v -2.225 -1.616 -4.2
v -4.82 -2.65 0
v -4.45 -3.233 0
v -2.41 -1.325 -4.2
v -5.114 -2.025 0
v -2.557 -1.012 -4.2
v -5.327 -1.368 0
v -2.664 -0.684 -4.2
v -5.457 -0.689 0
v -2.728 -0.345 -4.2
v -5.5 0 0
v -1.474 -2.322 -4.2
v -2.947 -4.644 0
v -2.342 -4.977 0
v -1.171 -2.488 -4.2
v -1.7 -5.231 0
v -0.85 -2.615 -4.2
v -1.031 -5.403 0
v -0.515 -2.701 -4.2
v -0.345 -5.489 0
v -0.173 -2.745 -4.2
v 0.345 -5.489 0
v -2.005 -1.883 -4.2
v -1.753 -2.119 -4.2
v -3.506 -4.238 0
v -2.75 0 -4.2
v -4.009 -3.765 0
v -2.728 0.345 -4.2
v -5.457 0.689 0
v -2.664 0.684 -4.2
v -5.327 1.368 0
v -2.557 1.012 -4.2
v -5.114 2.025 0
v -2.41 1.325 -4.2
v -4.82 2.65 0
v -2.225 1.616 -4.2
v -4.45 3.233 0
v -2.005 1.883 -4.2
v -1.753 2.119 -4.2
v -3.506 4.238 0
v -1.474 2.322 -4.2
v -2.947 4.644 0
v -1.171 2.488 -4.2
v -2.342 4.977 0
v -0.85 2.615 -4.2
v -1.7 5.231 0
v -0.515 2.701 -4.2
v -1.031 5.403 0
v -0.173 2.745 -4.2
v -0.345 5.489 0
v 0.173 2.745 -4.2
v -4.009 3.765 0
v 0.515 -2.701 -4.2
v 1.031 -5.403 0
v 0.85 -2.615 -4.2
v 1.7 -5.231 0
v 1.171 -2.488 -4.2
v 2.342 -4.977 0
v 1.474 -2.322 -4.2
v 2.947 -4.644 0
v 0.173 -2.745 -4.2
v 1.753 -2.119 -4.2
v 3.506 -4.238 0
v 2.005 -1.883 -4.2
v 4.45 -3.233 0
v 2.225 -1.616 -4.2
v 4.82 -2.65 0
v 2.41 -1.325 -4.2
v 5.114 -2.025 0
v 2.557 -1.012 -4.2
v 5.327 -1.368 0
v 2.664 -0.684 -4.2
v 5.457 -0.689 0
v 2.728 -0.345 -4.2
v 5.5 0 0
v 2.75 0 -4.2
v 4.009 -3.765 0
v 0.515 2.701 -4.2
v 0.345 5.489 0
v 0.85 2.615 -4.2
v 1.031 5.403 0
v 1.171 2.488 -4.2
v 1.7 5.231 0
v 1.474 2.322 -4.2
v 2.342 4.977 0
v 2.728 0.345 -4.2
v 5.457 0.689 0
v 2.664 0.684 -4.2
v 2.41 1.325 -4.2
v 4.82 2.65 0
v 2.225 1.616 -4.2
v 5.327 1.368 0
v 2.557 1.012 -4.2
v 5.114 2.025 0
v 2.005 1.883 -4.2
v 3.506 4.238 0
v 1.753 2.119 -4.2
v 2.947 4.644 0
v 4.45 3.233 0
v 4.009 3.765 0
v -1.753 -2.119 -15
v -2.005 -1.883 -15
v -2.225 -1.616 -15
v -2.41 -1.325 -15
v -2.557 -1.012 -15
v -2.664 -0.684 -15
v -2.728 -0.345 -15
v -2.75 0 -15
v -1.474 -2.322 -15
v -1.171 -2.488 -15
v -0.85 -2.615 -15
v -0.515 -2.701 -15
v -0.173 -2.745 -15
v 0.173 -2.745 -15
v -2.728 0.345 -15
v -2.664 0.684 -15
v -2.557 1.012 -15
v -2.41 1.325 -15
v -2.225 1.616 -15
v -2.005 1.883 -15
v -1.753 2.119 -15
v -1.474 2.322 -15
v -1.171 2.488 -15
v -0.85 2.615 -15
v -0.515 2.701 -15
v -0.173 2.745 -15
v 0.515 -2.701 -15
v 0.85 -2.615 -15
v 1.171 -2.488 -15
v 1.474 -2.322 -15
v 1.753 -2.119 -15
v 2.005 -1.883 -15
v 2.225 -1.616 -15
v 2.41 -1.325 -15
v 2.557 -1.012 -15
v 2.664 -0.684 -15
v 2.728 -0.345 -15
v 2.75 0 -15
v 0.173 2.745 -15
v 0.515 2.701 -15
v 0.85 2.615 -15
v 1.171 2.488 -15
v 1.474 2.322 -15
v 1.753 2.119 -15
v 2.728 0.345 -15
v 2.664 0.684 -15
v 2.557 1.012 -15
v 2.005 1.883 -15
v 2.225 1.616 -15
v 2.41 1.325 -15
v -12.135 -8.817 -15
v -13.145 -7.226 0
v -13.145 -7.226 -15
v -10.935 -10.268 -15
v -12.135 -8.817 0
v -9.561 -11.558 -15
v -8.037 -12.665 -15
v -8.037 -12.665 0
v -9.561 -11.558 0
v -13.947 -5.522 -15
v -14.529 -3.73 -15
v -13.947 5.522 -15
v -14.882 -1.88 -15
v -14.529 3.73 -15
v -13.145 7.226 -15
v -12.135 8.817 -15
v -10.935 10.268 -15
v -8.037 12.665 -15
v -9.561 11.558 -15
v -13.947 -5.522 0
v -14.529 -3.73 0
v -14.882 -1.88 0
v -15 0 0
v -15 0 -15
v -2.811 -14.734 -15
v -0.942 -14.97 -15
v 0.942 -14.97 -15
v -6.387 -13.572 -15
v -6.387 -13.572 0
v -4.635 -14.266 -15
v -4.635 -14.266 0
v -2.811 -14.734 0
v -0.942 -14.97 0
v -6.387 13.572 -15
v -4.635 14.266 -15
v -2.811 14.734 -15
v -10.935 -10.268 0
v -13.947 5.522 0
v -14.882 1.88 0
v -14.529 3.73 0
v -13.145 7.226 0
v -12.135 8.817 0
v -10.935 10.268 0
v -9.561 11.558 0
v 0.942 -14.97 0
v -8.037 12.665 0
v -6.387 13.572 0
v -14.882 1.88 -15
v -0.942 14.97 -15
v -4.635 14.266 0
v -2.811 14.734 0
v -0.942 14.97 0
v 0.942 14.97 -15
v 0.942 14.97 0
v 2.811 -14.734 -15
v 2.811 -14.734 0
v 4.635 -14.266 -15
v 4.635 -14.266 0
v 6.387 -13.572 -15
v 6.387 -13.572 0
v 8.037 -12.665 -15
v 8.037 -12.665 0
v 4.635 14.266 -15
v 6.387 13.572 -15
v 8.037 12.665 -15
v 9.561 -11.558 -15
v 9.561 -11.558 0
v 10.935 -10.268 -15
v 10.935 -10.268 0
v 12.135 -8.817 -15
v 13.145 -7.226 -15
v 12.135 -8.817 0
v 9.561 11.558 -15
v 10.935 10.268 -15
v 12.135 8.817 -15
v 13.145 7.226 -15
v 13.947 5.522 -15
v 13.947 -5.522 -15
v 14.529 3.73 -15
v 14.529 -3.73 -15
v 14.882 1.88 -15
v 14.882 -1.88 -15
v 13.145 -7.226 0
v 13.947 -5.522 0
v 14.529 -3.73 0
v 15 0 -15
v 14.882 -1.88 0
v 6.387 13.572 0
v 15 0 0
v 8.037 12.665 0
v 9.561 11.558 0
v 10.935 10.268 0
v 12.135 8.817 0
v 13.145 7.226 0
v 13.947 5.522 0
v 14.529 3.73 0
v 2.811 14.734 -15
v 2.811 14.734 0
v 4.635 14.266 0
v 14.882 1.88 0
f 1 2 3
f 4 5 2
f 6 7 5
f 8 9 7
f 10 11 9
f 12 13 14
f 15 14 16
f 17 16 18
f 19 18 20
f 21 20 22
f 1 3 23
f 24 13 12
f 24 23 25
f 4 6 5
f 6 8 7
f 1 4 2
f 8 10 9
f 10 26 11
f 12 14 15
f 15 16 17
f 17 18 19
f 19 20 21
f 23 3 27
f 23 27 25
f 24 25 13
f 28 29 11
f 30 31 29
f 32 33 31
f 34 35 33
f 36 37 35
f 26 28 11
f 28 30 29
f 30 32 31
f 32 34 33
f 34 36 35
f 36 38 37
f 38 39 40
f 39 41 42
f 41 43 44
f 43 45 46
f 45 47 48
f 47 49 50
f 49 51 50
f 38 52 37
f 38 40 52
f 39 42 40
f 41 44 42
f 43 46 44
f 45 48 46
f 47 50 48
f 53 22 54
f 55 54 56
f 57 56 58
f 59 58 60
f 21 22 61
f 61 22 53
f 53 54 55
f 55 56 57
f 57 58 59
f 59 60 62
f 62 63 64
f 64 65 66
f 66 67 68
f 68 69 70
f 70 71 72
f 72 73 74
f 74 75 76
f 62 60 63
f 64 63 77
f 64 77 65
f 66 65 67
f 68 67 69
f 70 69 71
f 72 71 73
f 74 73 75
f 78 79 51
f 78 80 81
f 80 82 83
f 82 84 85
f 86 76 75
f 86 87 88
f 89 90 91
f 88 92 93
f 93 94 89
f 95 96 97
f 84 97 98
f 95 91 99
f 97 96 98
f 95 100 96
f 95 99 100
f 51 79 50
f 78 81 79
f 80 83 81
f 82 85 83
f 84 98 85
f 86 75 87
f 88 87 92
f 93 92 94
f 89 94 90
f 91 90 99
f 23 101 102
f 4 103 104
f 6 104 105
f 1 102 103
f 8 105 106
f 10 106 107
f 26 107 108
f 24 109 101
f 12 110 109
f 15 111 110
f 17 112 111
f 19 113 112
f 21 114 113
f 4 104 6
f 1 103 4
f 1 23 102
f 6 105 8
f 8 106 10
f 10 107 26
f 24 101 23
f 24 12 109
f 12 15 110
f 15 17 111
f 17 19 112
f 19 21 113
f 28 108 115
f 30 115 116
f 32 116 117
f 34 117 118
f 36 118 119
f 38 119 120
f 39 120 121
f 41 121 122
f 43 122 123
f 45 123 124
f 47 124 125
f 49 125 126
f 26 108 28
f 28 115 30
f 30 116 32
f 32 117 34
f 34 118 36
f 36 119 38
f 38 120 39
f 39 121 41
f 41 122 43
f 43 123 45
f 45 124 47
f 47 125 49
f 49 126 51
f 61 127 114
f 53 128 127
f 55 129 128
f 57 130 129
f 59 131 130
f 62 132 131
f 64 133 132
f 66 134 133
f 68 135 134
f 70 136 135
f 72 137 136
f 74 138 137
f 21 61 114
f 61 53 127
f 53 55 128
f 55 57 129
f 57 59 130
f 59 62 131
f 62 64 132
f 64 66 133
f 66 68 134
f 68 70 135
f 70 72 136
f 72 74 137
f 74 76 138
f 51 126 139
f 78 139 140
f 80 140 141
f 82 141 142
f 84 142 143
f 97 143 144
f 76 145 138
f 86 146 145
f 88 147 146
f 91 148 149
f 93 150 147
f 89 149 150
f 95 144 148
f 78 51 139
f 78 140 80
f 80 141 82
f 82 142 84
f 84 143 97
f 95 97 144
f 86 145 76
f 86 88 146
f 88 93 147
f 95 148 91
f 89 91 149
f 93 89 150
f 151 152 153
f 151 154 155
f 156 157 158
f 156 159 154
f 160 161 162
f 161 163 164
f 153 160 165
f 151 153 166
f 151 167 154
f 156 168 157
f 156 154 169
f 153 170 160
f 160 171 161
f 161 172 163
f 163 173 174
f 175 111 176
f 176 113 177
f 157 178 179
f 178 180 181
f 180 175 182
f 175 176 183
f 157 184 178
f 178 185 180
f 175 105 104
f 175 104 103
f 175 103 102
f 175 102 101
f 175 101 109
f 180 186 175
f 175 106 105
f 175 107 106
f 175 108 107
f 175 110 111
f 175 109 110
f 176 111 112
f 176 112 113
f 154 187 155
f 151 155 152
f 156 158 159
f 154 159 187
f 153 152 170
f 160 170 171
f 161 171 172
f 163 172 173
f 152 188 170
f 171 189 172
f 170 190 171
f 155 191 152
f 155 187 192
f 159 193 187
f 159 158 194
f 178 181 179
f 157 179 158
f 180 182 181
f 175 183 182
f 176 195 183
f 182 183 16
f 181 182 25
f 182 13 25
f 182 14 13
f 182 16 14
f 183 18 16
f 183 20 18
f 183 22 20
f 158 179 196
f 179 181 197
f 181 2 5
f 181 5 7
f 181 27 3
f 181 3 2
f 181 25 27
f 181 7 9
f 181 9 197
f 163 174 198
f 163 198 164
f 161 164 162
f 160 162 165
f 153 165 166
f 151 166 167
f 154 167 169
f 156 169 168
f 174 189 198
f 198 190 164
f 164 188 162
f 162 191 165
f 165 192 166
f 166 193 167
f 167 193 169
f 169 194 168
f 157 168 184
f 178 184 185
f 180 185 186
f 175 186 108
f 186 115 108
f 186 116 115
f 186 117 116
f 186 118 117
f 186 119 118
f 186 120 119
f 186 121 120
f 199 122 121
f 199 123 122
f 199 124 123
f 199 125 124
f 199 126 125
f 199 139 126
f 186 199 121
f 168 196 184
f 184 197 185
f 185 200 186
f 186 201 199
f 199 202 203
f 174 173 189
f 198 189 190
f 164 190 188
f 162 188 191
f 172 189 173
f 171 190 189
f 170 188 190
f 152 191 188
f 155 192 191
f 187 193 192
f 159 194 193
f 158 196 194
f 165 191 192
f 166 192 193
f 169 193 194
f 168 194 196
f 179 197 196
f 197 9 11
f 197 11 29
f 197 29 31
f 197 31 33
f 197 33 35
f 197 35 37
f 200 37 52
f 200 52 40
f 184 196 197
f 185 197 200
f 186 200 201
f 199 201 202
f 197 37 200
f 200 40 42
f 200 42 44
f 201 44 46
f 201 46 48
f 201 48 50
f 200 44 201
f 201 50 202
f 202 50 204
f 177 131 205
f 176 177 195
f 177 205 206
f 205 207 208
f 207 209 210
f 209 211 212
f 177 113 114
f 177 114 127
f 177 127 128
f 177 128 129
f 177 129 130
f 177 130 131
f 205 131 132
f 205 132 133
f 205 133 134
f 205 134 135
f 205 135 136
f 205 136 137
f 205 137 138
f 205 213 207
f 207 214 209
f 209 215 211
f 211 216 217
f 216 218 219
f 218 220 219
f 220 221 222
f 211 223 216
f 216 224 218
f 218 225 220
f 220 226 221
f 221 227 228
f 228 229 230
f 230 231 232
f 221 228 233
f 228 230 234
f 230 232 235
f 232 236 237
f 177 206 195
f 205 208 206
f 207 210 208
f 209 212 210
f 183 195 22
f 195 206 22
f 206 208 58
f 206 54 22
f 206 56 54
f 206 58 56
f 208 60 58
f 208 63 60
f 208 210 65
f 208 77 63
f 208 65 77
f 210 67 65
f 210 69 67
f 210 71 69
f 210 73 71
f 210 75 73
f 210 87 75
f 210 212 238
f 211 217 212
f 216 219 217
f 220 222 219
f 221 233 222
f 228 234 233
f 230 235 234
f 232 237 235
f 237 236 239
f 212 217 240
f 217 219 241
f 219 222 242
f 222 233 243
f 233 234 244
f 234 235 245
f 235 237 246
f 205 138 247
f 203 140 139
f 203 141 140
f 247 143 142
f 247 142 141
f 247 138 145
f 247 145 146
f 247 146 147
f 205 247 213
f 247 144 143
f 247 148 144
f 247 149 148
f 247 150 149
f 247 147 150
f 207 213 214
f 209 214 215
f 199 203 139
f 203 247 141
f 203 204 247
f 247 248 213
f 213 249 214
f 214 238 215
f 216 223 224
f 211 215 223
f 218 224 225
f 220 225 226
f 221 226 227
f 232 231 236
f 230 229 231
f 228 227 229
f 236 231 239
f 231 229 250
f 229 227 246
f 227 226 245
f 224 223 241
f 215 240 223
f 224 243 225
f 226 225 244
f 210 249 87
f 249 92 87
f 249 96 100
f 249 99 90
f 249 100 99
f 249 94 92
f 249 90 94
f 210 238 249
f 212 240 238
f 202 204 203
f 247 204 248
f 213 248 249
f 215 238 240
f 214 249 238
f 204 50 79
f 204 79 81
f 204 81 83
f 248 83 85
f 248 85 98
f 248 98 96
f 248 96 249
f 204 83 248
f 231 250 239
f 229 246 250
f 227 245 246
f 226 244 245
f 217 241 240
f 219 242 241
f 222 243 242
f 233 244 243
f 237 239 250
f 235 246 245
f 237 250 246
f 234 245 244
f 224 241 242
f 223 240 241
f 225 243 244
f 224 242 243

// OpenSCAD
$fn = 50;

difference() {
	union() {
		translate(v = [0, 0, -15.0]) {
			cylinder(h = 15, r = 15.0);
		}
	}
	union() {
		translate(v = [0, 0, 0]) {
			rotate(a = [0, 0, 0]) {
				difference() {
					union() {
						translate(v = [0, 0, -18.0]) {
							cylinder(h = 18, r = 2.25);
						}
						translate(v = [0, 0, -4.2]) {
							cylinder(h = 4.2, r1 = 2.75, r2 = 5.5);
						}
						translate(v = [0, 0, -18.0]) {
							cylinder(h = 18, r = 2.75);
						}
						translate(v = [0, 0, -18.0]) {
							cylinder(h = 18, r = 2.25);
						}
					}
					union();
				}
			}
		}
	}
}
